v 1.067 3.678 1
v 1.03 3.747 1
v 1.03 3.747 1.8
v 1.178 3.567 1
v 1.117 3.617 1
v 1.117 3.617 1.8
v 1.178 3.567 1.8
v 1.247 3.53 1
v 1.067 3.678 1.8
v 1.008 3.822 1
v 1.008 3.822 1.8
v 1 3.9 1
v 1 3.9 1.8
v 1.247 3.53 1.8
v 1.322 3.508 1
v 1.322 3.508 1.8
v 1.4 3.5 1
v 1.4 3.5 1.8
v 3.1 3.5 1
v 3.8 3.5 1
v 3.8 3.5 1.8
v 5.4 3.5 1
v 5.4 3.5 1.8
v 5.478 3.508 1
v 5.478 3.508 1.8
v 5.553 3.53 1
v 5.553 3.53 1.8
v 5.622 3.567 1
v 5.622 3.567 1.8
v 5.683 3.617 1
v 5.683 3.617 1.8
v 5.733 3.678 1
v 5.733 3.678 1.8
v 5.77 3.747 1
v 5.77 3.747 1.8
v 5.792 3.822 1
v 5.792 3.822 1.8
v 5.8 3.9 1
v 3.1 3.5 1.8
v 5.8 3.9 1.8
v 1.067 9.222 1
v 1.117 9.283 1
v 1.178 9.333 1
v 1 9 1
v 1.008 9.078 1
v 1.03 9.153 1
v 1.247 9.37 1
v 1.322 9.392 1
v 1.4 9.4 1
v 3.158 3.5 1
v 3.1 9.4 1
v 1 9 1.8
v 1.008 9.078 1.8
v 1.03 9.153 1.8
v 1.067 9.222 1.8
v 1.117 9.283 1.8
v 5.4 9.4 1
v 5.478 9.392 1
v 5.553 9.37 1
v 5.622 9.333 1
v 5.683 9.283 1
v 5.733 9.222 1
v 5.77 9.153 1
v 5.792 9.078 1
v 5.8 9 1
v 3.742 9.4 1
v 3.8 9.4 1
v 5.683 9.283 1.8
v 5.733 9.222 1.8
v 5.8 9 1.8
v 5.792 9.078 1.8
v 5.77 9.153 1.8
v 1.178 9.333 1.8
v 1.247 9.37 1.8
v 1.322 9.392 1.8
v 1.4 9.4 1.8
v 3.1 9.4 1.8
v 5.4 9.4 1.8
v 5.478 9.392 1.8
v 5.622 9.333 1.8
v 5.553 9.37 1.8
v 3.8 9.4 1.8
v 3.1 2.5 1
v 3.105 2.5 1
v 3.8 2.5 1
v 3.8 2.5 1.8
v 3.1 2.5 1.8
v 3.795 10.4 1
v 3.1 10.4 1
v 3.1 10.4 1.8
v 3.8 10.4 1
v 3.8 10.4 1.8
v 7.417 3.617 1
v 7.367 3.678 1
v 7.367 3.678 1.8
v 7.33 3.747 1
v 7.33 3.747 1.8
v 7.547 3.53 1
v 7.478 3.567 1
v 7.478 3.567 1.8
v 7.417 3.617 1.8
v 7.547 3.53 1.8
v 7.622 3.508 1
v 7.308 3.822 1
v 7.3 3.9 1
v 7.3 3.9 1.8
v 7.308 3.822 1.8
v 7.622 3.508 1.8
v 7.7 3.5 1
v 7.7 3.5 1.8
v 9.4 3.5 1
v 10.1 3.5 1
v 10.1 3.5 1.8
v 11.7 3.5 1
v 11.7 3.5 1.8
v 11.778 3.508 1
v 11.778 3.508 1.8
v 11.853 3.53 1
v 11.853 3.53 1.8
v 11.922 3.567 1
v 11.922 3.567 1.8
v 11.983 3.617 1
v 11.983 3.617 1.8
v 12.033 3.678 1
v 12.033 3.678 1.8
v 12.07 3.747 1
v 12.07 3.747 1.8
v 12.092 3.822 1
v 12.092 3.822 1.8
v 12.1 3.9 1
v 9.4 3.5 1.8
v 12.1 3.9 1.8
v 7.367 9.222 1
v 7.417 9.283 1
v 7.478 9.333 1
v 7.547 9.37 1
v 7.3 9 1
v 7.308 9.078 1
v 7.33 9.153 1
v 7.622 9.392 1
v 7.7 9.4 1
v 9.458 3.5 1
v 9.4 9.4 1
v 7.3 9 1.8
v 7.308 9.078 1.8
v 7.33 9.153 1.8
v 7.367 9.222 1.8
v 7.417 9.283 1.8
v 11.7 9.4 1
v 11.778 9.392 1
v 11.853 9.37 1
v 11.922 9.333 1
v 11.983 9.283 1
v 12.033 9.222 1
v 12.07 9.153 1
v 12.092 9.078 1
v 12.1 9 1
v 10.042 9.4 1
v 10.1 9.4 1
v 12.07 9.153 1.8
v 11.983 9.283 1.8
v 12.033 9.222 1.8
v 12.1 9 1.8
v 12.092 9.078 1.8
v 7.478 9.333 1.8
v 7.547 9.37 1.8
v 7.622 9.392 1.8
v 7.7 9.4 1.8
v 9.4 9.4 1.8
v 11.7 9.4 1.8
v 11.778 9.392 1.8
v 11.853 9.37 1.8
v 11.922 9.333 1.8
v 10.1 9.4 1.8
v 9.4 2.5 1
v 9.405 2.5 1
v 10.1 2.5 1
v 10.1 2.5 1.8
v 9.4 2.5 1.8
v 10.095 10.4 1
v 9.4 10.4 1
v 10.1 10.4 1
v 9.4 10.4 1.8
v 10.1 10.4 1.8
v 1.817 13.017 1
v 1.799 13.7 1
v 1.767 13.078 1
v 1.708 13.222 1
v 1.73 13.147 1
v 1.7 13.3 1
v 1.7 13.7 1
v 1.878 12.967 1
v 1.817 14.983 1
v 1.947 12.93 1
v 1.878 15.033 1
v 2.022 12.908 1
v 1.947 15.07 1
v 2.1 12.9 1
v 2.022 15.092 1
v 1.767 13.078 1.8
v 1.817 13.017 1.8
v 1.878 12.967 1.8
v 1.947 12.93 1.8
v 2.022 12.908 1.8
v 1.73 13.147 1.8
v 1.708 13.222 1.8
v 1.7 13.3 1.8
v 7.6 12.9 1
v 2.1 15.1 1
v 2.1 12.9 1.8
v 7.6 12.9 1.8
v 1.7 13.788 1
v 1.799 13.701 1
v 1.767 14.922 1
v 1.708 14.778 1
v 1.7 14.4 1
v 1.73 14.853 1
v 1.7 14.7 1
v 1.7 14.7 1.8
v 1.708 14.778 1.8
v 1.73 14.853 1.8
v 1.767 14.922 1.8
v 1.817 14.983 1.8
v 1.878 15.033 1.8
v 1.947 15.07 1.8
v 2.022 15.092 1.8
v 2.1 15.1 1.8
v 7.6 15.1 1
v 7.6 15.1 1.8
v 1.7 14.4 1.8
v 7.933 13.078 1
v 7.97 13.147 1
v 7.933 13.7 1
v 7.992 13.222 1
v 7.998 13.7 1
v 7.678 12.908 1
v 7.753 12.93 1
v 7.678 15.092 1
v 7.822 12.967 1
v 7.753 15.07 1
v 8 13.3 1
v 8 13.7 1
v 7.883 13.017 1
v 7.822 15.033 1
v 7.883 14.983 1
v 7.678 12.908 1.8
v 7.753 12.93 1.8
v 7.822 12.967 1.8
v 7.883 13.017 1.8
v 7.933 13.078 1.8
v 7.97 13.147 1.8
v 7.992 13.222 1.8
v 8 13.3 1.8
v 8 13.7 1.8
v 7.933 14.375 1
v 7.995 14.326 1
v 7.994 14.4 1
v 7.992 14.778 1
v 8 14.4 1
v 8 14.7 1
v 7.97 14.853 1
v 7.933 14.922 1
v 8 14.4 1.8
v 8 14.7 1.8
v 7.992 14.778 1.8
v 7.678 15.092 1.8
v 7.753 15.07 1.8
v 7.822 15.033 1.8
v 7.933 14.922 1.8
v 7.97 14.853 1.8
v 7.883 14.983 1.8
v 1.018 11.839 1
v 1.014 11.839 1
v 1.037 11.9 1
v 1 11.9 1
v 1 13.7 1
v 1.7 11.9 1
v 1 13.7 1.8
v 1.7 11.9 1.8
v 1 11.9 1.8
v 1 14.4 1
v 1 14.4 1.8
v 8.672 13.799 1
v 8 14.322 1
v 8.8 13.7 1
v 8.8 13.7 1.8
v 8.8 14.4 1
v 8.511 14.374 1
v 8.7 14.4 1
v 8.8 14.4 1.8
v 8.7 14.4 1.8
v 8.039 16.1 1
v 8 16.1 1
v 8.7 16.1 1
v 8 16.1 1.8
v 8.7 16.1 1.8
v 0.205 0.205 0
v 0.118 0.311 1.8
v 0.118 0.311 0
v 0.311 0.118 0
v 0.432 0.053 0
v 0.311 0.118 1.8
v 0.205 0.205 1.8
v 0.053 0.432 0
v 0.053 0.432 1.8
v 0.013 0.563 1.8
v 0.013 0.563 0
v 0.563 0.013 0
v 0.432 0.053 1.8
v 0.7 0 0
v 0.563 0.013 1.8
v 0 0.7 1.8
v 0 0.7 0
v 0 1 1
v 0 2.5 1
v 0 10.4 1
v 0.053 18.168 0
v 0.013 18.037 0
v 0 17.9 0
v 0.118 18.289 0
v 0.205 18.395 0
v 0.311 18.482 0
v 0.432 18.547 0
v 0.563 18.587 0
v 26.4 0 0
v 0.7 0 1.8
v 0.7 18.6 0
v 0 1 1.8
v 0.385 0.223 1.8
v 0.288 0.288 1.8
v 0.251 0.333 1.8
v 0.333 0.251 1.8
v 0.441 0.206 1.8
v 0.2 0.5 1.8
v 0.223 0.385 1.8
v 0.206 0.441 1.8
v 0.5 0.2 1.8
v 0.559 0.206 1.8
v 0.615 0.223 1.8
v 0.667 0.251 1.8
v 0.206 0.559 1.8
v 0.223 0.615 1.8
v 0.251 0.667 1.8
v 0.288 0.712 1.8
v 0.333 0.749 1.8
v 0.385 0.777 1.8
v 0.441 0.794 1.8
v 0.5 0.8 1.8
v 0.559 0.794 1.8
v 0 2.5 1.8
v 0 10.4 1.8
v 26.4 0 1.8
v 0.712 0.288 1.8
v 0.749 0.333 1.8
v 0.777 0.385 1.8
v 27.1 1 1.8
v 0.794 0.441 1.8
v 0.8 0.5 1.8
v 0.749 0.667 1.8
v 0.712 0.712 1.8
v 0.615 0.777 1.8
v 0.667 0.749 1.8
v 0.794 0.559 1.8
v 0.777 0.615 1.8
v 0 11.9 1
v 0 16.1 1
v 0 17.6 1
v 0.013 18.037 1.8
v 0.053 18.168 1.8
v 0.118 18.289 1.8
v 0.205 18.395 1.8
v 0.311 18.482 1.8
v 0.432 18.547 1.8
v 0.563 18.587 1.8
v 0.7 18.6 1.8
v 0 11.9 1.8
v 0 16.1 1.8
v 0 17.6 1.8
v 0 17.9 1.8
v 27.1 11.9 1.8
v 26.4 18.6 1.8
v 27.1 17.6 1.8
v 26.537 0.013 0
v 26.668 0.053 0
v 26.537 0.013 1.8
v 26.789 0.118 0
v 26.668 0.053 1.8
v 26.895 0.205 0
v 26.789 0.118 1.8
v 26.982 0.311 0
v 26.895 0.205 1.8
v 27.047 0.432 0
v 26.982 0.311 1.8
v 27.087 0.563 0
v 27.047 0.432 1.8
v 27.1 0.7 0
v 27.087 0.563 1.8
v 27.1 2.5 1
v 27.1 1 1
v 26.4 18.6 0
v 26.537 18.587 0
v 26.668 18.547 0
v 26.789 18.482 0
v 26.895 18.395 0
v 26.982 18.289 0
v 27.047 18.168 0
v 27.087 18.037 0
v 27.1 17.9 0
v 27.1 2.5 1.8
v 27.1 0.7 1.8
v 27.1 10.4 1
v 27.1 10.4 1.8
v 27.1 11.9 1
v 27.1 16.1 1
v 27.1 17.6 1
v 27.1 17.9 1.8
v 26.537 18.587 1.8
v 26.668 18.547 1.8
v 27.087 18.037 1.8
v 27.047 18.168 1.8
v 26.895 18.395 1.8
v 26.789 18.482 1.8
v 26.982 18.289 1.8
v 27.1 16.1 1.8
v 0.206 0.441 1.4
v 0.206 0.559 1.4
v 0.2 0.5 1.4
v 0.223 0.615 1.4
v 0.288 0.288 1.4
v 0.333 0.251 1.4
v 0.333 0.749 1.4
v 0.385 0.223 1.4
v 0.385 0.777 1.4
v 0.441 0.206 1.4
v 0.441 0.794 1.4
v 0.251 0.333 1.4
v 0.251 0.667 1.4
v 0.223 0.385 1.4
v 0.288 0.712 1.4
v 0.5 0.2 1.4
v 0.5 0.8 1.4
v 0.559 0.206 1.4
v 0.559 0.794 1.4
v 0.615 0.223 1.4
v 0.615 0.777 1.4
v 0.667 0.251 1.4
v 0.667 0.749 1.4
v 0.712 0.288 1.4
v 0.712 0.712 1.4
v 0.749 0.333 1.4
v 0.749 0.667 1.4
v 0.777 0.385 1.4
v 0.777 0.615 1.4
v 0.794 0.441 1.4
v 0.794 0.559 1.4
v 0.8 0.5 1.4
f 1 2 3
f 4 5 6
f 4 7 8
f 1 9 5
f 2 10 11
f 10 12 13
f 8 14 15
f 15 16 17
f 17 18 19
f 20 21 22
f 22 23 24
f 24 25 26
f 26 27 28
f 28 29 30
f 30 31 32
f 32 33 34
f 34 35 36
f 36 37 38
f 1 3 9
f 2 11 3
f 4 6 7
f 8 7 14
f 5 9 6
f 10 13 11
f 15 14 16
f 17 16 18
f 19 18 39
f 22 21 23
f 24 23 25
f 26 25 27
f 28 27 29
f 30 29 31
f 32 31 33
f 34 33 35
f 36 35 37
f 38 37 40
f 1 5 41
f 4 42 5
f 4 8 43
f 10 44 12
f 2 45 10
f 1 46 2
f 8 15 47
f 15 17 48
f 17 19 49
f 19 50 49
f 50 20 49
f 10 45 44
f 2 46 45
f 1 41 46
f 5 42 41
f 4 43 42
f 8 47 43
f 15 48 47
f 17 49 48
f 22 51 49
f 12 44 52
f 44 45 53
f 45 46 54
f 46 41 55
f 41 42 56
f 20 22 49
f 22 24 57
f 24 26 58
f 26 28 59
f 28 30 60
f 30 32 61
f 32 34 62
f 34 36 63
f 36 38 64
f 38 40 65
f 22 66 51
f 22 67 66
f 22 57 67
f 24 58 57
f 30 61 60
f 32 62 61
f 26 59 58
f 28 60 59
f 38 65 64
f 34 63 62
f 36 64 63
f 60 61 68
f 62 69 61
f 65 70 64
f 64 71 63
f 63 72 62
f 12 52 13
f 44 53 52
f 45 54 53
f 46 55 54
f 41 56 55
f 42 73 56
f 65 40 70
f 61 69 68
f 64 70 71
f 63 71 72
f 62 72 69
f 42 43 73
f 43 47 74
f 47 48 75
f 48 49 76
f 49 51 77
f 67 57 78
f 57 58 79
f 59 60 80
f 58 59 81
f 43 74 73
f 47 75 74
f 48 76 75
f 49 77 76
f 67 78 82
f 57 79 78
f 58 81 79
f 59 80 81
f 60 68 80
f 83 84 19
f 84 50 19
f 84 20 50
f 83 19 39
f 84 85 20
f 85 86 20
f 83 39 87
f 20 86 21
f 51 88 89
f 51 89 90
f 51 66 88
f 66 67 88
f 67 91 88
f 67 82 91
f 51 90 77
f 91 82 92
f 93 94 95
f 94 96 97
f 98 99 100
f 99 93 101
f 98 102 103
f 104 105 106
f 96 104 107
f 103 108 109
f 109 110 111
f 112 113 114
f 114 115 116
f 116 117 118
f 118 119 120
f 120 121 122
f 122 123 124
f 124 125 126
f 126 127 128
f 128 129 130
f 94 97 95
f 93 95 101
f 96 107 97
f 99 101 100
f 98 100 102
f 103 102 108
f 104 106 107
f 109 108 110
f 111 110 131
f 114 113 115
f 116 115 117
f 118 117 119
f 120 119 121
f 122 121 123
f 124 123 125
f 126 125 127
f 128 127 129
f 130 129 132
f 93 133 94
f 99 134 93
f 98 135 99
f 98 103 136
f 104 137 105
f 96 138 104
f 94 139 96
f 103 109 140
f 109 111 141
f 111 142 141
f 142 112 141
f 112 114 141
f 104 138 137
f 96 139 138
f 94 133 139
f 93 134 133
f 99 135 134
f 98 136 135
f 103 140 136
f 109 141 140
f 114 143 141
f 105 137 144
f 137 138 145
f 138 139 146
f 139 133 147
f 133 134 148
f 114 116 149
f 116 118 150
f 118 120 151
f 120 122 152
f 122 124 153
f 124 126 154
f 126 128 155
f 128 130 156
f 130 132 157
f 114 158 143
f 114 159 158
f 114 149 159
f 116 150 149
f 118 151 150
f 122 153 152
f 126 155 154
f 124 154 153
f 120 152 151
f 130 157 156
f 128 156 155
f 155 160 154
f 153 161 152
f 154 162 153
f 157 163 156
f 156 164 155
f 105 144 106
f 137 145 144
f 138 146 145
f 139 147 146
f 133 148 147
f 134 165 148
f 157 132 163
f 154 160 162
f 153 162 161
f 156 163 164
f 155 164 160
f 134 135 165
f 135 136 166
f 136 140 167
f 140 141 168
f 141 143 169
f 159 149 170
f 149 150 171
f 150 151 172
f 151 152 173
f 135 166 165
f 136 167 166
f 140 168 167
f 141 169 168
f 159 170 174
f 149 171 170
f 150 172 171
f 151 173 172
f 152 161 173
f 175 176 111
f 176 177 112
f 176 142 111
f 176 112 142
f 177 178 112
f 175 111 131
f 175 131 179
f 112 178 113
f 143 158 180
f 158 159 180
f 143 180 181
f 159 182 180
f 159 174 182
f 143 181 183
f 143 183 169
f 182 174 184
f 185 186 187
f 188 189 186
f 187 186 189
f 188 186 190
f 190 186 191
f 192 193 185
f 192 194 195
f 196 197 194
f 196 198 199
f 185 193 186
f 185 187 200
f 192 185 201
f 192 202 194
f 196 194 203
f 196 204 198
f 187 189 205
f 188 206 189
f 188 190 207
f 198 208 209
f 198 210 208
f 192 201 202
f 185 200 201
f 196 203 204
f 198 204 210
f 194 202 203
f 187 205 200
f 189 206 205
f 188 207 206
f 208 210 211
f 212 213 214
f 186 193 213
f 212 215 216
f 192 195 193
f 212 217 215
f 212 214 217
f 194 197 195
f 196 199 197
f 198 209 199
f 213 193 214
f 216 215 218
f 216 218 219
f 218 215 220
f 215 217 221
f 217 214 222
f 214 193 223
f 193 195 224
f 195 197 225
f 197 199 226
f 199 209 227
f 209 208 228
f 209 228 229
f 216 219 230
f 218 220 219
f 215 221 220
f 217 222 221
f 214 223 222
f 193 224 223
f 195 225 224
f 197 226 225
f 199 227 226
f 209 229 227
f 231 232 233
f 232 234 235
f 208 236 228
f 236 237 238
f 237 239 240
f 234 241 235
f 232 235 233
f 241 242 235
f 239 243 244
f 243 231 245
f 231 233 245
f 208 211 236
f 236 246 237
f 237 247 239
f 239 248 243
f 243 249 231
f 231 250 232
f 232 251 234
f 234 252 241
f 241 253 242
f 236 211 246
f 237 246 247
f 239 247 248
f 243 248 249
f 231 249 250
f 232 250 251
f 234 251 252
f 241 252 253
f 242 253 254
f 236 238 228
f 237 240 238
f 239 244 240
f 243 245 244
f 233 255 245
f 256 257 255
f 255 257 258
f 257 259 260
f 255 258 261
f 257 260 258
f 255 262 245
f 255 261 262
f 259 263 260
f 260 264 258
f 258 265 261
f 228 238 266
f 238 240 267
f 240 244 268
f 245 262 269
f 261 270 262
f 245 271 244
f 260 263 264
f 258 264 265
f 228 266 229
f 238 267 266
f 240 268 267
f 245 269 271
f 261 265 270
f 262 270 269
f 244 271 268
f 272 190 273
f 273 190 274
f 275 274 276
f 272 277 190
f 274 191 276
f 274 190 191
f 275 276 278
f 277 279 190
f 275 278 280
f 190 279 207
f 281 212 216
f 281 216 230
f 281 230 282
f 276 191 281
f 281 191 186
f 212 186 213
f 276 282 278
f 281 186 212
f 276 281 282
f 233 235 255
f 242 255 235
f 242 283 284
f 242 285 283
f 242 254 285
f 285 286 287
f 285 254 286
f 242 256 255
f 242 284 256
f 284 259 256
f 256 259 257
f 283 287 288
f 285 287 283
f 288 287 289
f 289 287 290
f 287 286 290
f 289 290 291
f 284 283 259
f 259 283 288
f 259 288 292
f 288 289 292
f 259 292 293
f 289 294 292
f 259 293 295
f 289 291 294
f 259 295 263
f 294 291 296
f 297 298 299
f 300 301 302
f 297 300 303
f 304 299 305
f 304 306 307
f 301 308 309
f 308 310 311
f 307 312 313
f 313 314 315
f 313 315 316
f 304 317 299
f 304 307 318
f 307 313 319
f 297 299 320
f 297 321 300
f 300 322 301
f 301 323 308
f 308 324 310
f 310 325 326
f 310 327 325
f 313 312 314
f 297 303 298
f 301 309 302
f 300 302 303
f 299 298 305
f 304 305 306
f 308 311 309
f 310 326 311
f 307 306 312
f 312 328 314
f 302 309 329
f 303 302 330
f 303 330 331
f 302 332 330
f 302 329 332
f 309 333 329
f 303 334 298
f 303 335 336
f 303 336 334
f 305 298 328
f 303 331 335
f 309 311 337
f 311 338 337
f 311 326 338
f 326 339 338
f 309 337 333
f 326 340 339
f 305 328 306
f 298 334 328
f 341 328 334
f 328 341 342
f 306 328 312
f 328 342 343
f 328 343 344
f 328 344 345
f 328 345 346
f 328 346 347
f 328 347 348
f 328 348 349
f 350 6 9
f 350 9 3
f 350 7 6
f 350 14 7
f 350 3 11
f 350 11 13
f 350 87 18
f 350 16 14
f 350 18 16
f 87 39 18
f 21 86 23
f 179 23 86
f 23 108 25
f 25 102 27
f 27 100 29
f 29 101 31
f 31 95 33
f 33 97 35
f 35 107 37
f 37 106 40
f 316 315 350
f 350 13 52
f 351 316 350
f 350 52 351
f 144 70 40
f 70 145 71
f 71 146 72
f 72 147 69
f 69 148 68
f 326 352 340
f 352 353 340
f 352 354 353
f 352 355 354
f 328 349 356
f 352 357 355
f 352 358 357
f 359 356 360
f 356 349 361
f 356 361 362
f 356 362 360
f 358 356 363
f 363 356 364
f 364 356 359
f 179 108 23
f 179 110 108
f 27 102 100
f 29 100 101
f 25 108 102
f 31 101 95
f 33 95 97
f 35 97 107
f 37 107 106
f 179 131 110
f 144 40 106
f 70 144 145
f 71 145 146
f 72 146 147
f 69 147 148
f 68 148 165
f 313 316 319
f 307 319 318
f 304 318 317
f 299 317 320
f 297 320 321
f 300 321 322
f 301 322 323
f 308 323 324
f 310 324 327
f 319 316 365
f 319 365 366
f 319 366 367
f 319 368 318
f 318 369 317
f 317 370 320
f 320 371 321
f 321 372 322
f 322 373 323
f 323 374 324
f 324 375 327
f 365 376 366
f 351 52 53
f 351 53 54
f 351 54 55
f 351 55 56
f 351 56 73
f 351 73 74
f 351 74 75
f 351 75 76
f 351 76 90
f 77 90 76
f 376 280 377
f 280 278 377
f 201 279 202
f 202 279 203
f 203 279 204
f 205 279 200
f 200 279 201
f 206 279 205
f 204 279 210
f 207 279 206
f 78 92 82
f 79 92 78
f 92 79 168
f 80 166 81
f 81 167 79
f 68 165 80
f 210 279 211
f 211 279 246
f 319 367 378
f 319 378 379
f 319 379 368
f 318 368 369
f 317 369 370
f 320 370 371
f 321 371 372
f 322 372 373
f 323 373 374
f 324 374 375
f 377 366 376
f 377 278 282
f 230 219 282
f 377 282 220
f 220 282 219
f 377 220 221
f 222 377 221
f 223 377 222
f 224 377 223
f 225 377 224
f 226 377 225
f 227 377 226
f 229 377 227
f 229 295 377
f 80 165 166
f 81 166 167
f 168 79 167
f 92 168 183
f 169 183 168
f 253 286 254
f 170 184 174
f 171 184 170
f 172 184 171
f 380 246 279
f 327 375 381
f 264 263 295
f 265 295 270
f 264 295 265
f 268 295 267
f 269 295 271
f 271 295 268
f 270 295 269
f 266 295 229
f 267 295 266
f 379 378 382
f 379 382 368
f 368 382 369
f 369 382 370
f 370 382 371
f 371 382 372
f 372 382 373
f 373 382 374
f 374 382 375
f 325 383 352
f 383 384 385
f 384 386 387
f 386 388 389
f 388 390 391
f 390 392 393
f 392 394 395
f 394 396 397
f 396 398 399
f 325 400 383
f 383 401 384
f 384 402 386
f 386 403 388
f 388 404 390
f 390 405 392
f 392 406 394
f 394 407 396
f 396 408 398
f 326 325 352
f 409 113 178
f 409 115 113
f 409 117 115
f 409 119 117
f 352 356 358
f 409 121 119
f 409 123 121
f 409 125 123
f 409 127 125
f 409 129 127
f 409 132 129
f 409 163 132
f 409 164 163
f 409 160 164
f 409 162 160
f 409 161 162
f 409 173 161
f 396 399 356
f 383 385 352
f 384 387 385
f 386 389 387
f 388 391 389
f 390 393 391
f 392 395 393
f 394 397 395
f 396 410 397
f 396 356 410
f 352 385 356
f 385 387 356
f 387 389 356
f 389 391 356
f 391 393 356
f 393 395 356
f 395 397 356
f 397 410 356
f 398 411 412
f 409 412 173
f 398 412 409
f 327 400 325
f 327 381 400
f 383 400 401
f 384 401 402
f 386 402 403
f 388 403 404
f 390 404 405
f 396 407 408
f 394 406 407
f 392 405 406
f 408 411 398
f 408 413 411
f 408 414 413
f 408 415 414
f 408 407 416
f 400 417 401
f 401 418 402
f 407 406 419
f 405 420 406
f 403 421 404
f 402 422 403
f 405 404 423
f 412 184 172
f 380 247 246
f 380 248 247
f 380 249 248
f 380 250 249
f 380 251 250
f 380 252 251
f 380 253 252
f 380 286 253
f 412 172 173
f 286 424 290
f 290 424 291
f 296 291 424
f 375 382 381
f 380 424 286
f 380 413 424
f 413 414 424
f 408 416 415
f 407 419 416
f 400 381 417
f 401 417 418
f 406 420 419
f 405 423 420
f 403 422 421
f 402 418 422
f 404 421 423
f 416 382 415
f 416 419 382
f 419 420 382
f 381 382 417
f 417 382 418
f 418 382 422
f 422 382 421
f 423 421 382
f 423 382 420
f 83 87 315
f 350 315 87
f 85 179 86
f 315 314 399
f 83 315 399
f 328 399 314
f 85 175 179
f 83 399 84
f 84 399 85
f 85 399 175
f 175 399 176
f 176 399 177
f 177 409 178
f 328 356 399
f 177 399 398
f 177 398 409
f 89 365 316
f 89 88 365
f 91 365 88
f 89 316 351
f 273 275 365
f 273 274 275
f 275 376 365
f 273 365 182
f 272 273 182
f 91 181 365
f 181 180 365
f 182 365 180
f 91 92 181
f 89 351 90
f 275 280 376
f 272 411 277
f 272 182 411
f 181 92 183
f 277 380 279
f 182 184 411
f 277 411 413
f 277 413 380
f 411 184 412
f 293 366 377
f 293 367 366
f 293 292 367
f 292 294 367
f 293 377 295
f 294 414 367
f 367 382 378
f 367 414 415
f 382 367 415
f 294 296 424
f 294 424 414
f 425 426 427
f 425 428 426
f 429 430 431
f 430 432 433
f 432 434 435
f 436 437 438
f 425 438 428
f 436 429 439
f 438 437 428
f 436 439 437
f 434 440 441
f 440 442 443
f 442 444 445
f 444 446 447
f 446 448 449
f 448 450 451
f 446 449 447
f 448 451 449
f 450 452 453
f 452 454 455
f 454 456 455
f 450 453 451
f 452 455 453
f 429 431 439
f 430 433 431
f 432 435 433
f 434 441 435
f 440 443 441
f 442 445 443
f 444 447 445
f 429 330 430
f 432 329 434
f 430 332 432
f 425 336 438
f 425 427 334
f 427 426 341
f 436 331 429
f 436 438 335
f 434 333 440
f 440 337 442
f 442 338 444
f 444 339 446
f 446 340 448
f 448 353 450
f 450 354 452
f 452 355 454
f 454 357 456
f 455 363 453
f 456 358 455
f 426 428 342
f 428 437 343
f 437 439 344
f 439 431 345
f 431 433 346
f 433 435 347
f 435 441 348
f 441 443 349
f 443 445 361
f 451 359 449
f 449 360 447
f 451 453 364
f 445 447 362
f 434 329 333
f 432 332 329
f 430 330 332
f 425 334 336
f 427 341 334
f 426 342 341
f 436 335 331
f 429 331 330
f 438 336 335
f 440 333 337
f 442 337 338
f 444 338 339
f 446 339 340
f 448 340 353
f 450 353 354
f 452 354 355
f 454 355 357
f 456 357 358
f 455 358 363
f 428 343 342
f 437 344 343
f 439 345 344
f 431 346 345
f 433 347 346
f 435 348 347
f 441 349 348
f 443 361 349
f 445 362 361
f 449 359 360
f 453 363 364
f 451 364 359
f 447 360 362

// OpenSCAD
// VentSys sensor-array power splice carrier, v2 - fully editable
// Glue-down wire carrier: 3V3 / GND / LDR rails, 10uF + 100nF ceramics across 3V3-GND,
// 10k from GND to the LDR rail. Dimensions follow ventsys_feedback_carrier.scad
// (rounded to 0.1 mm). Every feature below has its own labelled group; all values are in mm.
//
// Frame: origin = plate bottom-left corner, X to the right, Y up. Positions are the
// bottom-left corner of a feature. Channels overlap their pocket/rail by 0.1 mm so
// they join cleanly - keep that overlap when you move things.
//   Y up:  LDR rail (top) / 10k / GND rail (middle) / capacitors / 3V3 rail (bottom)
// No text, no raised pads, no rim. Print flat side down, 0.2 mm layers, no supports.

$fn = 32;

/* [1. Plate] */
plate_x  = 27.1;  // [5:0.1:80]
plate_y  = 18.6;  // [5:0.1:60]
plate_z  = 1.8;   // [0.6:0.1:6]
corner_r = 0.7;   // [0:0.1:5]
// Depth of every pocket and channel (leaves plate_z - recess_d underneath)
recess_d = 0.8;   // [0.2:0.1:5]

/* [2. 3V3 rail (bottom)] */
rail_3v3_enable = true;
rail_3v3_x = 0.0;   // [0:0.1:80]
rail_3v3_y = 1.0;   // [0:0.1:60]
rail_3v3_len = 27.1; // [1:0.1:80]
rail_3v3_w = 1.5;   // [0.4:0.1:5]

/* [3. GND rail (middle)] */
rail_gnd_enable = true;
rail_gnd_x = 0.0;   // [0:0.1:80]
rail_gnd_y = 10.4;  // [0:0.1:60]
rail_gnd_len = 27.1; // [1:0.1:80]
rail_gnd_w = 1.5;   // [0.4:0.1:5]

/* [4. LDR rail (top)] */
rail_ldr_enable = true;
rail_ldr_x = 0.0;   // [0:0.1:80]
rail_ldr_y = 16.1;  // [0:0.1:60]
rail_ldr_len = 27.1; // [1:0.1:80]
rail_ldr_w = 1.5;   // [0.4:0.1:5]

/* [5. 10uF ceramic - pocket] */
cap10_enable = true;
cap10_x = 1.0;  // [0:0.1:80]
cap10_y = 3.5;  // [0:0.1:60]
cap10_w = 4.8;  // [1:0.1:30]
cap10_l = 5.9;  // [1:0.1:30]
cap10_r = 0.4;  // [0:0.1:3]

/* [6. 10uF ceramic - leg channel to 3V3 rail] */
cap10_3v3_x  = 3.1;  // [0:0.1:80]
cap10_3v3_y  = 2.4;  // [0:0.1:60]
cap10_3v3_sx = 0.7;  // [0.2:0.1:5]
cap10_3v3_sy = 1.2;  // [0.2:0.1:30]

/* [7. 10uF ceramic - leg channel to GND rail] */
cap10_gnd_x  = 3.1;  // [0:0.1:80]
cap10_gnd_y  = 9.3;  // [0:0.1:60]
cap10_gnd_sx = 0.7;  // [0.2:0.1:5]
cap10_gnd_sy = 1.2;  // [0.2:0.1:30]

/* [8. 100nF ceramic - pocket] */
cap100_enable = true;
cap100_x = 7.3;  // [0:0.1:80]
cap100_y = 3.5;  // [0:0.1:60]
cap100_w = 4.8;  // [1:0.1:30]
cap100_l = 5.9;  // [1:0.1:30]
cap100_r = 0.4;  // [0:0.1:3]

/* [9. 100nF ceramic - leg channel to 3V3 rail] */
cap100_3v3_x  = 9.4;  // [0:0.1:80]
cap100_3v3_y  = 2.4;  // [0:0.1:60]
cap100_3v3_sx = 0.7;  // [0.2:0.1:5]
cap100_3v3_sy = 1.2;  // [0.2:0.1:30]

/* [10. 100nF ceramic - leg channel to GND rail] */
cap100_gnd_x  = 9.4;  // [0:0.1:80]
cap100_gnd_y  = 9.3;  // [0:0.1:60]
cap100_gnd_sx = 0.7;  // [0.2:0.1:5]
cap100_gnd_sy = 1.2;  // [0.2:0.1:30]

/* [11. 10k resistor - pocket] */
res_enable = true;
res_x = 1.7;   // [0:0.1:80]
res_y = 12.9;  // [0:0.1:60]
res_w = 6.3;   // [1:0.1:30]
res_h = 2.2;   // [0.5:0.1:15]
res_r = 0.4;   // [0:0.1:3]

/* [12. 10k resistor - left lead: vertical channel up from the GND rail] */
res_left_up_x  = 1.0;  // [0:0.1:80]
res_left_up_y  = 11.8; // [0:0.1:60]
res_left_up_sx = 0.7;  // [0.2:0.1:5]
res_left_up_sy = 2.6;  // [0.2:0.1:30]

/* [13. 10k resistor - left lead: join into the pocket] */
res_left_join_x  = 1.0;  // [0:0.1:80]
res_left_join_y  = 13.7; // [0:0.1:60]
res_left_join_sx = 0.8;  // [0.2:0.1:10]
res_left_join_sy = 0.7;  // [0.2:0.1:5]

/* [14. 10k resistor - right lead: join out of the pocket] */
res_right_join_x  = 7.9;  // [0:0.1:80]
res_right_join_y  = 13.7; // [0:0.1:60]
res_right_join_sx = 0.9;  // [0.2:0.1:10]
res_right_join_sy = 0.7;  // [0.2:0.1:5]

/* [15. 10k resistor - right lead: vertical channel up to the LDR rail] */
res_right_up_x  = 8.0;  // [0:0.1:80]
res_right_up_y  = 13.7; // [0:0.1:60]
res_right_up_sx = 0.7;  // [0.2:0.1:5]
res_right_up_sy = 2.5;  // [0.2:0.1:30]

/* [16. Orientation dimple (3V3 side)] */
dimple_enable = true;
dimple_x = 0.5;   // [0:0.1:80]
dimple_y = 0.5;   // [0:0.1:60]
dimple_d = 0.6;   // [0.2:0.1:3]
dimple_depth = 0.4; // [0.1:0.1:2]

// ---------------------------------------------------------------------------
module rrect2d(x, y, r) {
  hull() for (i = [r, x - r], j = [r, y - r]) translate([i, j]) circle(r = r);
}
module recess(x, y, sx, sy, r = 0) {
  translate([x, y, plate_z - recess_d])
    linear_extrude(height = recess_d + 0.1)
      if (r > 0) rrect2d(sx, sy, min(r, sx / 2, sy / 2)); else square([sx, sy]);
}
// rail: runs off the plate edge where it reaches it, so the ends stay open
module rail(en, x, y, len, w) {
  if (en) {
    x0 = x <= 0 ? -0.1 : x;
    x1 = (x + len) >= plate_x ? plate_x + 0.1 : x + len;
    recess(x0, y, x1 - x0, w);
  }
}

difference() {
  linear_extrude(height = plate_z) rrect2d(plate_x, plate_y, min(corner_r, plate_x / 2, plate_y / 2));

  rail(rail_3v3_enable, rail_3v3_x, rail_3v3_y, rail_3v3_len, rail_3v3_w);
  rail(rail_gnd_enable, rail_gnd_x, rail_gnd_y, rail_gnd_len, rail_gnd_w);
  rail(rail_ldr_enable, rail_ldr_x, rail_ldr_y, rail_ldr_len, rail_ldr_w);

  if (cap10_enable) {
    recess(cap10_x, cap10_y, cap10_w, cap10_l, cap10_r);
    recess(cap10_3v3_x, cap10_3v3_y, cap10_3v3_sx, cap10_3v3_sy);
    recess(cap10_gnd_x, cap10_gnd_y, cap10_gnd_sx, cap10_gnd_sy);
  }
  if (cap100_enable) {
    recess(cap100_x, cap100_y, cap100_w, cap100_l, cap100_r);
    recess(cap100_3v3_x, cap100_3v3_y, cap100_3v3_sx, cap100_3v3_sy);
    recess(cap100_gnd_x, cap100_gnd_y, cap100_gnd_sx, cap100_gnd_sy);
  }
  if (res_enable) {
    recess(res_x, res_y, res_w, res_h, res_r);
    recess(res_left_up_x, res_left_up_y, res_left_up_sx, res_left_up_sy);
    recess(res_left_join_x, res_left_join_y, res_left_join_sx, res_left_join_sy);
    recess(res_right_join_x, res_right_join_y, res_right_join_sx, res_right_join_sy);
    recess(res_right_up_x, res_right_up_y, res_right_up_sx, res_right_up_sy);
  }
  if (dimple_enable)
    translate([dimple_x, dimple_y, plate_z - dimple_depth]) cylinder(d = dimple_d, h = dimple_depth + 0.1);
}
echo(str("Plate ", plate_x, " x ", plate_y, " x ", plate_z, " mm"));
